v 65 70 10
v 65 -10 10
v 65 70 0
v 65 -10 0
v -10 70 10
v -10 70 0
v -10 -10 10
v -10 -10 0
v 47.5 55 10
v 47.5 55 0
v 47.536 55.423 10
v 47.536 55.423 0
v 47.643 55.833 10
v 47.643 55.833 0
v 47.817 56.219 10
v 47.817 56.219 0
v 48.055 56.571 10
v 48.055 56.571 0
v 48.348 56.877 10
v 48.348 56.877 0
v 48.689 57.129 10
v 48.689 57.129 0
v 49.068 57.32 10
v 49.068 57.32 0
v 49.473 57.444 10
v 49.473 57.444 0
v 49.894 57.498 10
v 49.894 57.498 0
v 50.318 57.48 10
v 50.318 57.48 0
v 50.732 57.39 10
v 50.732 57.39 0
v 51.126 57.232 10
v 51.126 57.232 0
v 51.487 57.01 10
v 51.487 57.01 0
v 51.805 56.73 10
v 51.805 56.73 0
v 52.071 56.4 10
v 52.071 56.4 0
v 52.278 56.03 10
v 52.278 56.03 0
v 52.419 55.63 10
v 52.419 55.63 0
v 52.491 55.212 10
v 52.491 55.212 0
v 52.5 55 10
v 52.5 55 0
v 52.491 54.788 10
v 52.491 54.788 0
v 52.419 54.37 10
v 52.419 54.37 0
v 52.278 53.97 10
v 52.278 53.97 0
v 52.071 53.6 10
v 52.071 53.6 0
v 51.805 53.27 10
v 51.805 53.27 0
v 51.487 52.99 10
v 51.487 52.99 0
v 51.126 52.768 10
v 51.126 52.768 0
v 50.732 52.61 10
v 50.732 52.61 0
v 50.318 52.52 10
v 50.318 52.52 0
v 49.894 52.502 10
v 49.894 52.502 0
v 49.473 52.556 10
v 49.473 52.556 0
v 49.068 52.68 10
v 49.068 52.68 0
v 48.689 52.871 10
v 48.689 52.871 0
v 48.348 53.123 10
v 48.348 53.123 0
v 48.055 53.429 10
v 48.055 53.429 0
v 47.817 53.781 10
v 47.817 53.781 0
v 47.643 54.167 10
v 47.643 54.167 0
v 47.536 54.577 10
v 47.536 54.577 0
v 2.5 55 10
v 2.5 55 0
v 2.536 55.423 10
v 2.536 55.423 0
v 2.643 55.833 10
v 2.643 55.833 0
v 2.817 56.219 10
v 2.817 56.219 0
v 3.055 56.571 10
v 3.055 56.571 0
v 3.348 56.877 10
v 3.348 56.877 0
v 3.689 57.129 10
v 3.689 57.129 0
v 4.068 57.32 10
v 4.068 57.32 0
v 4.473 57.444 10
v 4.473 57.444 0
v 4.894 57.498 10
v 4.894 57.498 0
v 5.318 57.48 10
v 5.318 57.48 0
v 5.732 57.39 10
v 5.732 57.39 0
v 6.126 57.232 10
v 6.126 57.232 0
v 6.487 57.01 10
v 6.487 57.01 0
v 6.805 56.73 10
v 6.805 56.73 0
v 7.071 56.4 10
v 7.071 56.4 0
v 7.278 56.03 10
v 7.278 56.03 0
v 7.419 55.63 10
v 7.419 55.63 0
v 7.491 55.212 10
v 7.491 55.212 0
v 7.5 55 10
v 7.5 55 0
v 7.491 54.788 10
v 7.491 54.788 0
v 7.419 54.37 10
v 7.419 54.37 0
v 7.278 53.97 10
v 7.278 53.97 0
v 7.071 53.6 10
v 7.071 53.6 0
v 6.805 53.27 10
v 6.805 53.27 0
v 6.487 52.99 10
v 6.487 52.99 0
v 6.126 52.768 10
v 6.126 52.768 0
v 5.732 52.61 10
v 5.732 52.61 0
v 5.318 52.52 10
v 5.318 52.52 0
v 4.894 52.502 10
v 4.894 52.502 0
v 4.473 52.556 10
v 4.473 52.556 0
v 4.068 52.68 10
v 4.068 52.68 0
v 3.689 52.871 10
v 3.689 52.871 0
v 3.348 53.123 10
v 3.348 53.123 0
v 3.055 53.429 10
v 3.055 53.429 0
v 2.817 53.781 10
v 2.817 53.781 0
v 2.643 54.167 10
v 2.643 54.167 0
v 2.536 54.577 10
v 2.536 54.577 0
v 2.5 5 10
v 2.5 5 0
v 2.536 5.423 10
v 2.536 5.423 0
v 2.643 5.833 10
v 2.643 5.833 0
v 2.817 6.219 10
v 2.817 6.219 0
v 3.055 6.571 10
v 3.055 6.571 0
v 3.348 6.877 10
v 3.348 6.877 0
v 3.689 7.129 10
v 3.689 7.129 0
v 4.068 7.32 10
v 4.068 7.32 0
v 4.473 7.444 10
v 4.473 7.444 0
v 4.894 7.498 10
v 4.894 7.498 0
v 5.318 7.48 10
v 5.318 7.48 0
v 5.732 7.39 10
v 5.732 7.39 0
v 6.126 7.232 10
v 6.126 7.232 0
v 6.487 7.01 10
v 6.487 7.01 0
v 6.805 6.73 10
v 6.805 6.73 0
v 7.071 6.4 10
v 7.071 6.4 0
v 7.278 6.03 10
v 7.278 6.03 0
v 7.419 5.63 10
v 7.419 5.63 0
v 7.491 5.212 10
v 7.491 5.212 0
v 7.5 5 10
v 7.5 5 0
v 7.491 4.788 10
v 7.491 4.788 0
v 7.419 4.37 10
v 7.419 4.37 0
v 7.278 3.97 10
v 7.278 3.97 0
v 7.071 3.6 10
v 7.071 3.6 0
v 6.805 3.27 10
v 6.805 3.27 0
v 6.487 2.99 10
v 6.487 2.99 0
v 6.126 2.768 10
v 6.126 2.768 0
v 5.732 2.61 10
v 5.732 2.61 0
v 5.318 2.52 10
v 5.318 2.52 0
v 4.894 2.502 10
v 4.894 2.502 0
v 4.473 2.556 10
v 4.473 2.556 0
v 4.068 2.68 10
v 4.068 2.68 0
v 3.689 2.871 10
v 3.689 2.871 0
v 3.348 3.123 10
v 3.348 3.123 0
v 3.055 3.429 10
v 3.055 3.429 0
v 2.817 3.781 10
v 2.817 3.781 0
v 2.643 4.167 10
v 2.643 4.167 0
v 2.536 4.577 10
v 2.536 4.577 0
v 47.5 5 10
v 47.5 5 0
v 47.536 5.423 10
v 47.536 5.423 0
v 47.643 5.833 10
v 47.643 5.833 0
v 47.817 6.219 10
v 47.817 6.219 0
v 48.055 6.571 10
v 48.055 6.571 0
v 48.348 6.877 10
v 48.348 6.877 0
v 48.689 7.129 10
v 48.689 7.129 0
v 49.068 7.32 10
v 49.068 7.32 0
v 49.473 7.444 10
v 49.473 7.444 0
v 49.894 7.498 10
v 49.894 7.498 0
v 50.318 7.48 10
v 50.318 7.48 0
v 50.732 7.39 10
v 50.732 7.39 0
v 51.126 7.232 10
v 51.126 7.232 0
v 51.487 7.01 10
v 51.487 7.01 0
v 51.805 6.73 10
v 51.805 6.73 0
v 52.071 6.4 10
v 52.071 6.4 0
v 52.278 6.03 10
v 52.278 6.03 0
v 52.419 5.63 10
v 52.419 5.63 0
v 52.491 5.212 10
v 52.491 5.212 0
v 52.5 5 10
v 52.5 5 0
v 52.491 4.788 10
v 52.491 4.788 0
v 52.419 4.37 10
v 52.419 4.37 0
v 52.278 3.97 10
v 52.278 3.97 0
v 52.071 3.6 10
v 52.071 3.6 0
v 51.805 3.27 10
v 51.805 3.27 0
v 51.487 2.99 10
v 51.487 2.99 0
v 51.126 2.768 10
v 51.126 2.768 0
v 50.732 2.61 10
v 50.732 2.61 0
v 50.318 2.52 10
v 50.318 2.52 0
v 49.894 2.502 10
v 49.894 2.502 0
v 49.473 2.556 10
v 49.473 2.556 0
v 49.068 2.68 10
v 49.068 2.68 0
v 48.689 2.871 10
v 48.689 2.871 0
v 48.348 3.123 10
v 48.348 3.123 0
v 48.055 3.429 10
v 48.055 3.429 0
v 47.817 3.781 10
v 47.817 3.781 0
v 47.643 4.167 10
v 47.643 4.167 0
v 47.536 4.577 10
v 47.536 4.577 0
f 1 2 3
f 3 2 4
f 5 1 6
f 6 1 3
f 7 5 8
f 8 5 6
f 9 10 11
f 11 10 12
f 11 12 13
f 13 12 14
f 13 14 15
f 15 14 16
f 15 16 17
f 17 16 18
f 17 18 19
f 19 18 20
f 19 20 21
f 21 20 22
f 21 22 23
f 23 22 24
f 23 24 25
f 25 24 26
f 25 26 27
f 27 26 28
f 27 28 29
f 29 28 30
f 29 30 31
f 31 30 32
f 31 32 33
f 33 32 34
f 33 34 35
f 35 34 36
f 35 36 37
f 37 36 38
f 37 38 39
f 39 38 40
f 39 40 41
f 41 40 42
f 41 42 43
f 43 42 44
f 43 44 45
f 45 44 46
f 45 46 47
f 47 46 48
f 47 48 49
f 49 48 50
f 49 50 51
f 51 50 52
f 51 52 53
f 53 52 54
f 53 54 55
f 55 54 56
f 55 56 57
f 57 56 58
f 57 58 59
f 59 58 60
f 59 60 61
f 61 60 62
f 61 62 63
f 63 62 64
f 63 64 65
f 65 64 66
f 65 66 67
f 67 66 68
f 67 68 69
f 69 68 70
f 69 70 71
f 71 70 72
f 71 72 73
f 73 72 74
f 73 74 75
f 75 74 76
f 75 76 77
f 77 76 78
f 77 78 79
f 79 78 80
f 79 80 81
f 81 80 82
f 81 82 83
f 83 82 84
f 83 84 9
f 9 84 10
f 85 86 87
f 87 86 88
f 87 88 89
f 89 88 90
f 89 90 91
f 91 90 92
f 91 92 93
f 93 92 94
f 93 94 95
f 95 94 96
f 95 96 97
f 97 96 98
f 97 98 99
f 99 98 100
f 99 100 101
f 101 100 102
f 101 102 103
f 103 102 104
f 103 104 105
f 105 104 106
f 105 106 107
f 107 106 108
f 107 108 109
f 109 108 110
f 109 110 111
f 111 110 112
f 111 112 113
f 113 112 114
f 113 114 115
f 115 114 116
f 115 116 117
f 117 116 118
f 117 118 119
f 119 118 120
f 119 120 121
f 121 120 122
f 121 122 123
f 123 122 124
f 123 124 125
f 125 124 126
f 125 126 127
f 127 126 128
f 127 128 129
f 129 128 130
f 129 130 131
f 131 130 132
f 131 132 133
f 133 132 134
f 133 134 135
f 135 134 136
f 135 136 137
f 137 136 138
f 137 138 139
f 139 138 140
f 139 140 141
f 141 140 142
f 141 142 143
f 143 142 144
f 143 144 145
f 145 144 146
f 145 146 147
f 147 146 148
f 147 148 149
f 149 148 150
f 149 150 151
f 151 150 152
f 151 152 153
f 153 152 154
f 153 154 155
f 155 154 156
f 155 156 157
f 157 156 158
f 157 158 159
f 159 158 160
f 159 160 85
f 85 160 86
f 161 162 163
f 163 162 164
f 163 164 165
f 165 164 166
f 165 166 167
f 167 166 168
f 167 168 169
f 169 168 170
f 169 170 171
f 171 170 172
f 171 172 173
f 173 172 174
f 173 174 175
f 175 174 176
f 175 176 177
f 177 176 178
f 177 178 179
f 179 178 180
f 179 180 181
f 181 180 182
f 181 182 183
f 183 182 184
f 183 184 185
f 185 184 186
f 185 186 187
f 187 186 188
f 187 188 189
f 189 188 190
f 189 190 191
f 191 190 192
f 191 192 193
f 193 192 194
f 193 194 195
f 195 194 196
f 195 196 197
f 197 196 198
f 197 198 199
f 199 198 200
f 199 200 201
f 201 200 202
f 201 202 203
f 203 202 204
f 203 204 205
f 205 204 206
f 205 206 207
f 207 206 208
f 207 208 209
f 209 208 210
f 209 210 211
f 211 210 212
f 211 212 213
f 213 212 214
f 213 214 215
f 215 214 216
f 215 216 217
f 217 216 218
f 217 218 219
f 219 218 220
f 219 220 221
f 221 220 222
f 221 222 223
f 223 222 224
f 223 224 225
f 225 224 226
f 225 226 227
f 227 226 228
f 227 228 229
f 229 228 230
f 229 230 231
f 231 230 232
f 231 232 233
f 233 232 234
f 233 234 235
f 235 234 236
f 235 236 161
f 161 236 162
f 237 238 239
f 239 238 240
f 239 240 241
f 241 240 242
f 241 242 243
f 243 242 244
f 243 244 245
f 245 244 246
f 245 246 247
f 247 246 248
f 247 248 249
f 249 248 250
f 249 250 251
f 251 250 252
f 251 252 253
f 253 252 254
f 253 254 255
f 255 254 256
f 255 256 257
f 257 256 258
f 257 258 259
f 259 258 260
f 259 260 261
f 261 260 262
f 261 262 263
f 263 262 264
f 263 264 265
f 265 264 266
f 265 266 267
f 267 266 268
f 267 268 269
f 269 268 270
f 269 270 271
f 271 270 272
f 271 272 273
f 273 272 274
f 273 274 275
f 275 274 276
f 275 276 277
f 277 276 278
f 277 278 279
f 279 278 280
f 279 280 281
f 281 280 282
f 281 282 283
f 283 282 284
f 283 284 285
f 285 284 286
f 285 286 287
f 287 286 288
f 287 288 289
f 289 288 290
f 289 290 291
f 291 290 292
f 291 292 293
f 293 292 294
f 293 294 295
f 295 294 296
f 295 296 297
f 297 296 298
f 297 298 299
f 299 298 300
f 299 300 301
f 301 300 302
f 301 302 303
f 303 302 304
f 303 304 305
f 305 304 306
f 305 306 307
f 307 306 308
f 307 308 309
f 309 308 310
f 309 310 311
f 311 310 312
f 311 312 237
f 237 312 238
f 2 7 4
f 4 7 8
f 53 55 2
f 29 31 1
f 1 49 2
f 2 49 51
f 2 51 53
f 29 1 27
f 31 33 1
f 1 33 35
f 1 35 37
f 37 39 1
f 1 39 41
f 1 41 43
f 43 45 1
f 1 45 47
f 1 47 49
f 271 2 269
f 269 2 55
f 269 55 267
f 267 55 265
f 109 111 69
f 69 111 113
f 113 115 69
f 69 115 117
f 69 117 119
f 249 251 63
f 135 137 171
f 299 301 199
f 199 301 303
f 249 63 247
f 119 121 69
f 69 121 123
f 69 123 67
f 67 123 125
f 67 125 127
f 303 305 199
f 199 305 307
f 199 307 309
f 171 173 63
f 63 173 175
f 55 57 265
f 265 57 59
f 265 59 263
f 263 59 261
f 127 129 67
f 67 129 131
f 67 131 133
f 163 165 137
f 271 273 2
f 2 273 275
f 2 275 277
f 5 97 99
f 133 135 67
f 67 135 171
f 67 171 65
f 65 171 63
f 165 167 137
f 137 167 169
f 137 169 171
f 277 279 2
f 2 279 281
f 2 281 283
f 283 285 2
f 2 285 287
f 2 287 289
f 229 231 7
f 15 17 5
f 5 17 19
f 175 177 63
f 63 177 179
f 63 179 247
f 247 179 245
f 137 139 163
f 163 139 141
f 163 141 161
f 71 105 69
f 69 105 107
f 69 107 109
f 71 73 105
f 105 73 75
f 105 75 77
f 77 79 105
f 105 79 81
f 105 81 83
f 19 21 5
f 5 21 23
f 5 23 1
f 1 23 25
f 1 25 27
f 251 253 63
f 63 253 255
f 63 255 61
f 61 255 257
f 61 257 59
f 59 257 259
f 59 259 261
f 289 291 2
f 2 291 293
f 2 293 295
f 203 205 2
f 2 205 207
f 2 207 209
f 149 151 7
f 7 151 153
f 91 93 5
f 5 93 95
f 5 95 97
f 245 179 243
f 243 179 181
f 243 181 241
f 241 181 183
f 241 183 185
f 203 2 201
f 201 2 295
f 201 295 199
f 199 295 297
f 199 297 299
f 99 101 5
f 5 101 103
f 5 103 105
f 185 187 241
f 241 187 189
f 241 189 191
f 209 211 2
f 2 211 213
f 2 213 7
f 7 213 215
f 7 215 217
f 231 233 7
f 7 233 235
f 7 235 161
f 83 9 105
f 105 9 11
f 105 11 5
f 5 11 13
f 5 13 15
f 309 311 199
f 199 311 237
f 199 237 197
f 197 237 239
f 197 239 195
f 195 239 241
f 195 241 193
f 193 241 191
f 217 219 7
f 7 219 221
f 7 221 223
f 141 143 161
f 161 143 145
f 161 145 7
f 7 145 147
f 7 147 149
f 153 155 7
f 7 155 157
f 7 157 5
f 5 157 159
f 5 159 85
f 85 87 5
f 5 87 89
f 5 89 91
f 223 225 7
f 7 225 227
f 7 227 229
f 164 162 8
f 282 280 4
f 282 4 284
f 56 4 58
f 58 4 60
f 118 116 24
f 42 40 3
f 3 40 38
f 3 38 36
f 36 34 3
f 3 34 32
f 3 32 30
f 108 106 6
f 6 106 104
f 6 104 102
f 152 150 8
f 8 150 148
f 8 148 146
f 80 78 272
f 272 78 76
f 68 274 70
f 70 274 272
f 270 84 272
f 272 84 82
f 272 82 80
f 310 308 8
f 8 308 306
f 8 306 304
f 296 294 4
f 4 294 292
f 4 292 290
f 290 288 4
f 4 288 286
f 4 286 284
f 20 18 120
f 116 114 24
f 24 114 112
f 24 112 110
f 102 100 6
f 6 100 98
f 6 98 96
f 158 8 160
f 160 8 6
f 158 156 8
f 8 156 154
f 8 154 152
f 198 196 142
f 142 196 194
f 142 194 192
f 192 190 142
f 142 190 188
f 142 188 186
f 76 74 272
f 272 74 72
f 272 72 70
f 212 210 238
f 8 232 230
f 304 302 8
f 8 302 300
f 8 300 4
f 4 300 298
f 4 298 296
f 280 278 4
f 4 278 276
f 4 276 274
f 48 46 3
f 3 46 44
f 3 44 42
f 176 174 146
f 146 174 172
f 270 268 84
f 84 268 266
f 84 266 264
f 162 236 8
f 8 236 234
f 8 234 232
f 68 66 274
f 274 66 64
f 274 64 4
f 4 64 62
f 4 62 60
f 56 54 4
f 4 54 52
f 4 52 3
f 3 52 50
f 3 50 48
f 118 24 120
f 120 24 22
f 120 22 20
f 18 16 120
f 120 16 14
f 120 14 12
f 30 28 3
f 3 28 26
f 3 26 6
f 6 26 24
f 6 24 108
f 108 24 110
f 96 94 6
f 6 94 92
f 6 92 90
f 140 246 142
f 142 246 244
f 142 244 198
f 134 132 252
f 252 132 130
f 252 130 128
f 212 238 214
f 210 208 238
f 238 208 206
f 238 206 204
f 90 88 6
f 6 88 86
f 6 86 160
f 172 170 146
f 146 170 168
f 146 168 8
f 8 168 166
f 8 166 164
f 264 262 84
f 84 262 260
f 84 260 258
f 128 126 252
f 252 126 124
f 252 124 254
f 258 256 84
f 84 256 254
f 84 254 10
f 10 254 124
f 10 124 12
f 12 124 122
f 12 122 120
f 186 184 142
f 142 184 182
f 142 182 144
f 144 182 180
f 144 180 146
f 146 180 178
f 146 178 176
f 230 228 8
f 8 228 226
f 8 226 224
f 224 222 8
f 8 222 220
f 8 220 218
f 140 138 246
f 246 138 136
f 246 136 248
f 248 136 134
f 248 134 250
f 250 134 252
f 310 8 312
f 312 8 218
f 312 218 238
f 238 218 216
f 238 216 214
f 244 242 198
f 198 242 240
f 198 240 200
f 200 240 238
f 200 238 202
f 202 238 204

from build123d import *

# Parameters (mm, degrees)
SKETCH1_W           = 75
SKETCH1_H           = 80
SKETCH1_W_2         = 55
SKETCH1_H_2         = 60
SKETCH1_R           = 2.5
BOSS_EXTRUDE1_DEPTH = 10


with BuildPart() as part:
    # Sketch1 → Boss-Extrude1 (new body)
    with BuildSketch(Plane.XY):
        with Locations((27.5, 30)):
            Rectangle(SKETCH1_W, SKETCH1_H)
        with Locations((27.5, 30)):
            Rectangle(SKETCH1_W_2, SKETCH1_H_2, mode=Mode.SUBTRACT)
        with Locations((27.5, 30)):
            Rectangle(SKETCH1_W_2, SKETCH1_H_2)
        with Locations((50, 5)):
            Circle(SKETCH1_R, mode=Mode.SUBTRACT)
        with Locations((5, 5)):
            Circle(SKETCH1_R, mode=Mode.SUBTRACT)
        with Locations((5, 55)):
            Circle(SKETCH1_R, mode=Mode.SUBTRACT)
        with Locations((50, 55)):
            Circle(SKETCH1_R, mode=Mode.SUBTRACT)
    extrude(amount=BOSS_EXTRUDE1_DEPTH)


solid = part.part
